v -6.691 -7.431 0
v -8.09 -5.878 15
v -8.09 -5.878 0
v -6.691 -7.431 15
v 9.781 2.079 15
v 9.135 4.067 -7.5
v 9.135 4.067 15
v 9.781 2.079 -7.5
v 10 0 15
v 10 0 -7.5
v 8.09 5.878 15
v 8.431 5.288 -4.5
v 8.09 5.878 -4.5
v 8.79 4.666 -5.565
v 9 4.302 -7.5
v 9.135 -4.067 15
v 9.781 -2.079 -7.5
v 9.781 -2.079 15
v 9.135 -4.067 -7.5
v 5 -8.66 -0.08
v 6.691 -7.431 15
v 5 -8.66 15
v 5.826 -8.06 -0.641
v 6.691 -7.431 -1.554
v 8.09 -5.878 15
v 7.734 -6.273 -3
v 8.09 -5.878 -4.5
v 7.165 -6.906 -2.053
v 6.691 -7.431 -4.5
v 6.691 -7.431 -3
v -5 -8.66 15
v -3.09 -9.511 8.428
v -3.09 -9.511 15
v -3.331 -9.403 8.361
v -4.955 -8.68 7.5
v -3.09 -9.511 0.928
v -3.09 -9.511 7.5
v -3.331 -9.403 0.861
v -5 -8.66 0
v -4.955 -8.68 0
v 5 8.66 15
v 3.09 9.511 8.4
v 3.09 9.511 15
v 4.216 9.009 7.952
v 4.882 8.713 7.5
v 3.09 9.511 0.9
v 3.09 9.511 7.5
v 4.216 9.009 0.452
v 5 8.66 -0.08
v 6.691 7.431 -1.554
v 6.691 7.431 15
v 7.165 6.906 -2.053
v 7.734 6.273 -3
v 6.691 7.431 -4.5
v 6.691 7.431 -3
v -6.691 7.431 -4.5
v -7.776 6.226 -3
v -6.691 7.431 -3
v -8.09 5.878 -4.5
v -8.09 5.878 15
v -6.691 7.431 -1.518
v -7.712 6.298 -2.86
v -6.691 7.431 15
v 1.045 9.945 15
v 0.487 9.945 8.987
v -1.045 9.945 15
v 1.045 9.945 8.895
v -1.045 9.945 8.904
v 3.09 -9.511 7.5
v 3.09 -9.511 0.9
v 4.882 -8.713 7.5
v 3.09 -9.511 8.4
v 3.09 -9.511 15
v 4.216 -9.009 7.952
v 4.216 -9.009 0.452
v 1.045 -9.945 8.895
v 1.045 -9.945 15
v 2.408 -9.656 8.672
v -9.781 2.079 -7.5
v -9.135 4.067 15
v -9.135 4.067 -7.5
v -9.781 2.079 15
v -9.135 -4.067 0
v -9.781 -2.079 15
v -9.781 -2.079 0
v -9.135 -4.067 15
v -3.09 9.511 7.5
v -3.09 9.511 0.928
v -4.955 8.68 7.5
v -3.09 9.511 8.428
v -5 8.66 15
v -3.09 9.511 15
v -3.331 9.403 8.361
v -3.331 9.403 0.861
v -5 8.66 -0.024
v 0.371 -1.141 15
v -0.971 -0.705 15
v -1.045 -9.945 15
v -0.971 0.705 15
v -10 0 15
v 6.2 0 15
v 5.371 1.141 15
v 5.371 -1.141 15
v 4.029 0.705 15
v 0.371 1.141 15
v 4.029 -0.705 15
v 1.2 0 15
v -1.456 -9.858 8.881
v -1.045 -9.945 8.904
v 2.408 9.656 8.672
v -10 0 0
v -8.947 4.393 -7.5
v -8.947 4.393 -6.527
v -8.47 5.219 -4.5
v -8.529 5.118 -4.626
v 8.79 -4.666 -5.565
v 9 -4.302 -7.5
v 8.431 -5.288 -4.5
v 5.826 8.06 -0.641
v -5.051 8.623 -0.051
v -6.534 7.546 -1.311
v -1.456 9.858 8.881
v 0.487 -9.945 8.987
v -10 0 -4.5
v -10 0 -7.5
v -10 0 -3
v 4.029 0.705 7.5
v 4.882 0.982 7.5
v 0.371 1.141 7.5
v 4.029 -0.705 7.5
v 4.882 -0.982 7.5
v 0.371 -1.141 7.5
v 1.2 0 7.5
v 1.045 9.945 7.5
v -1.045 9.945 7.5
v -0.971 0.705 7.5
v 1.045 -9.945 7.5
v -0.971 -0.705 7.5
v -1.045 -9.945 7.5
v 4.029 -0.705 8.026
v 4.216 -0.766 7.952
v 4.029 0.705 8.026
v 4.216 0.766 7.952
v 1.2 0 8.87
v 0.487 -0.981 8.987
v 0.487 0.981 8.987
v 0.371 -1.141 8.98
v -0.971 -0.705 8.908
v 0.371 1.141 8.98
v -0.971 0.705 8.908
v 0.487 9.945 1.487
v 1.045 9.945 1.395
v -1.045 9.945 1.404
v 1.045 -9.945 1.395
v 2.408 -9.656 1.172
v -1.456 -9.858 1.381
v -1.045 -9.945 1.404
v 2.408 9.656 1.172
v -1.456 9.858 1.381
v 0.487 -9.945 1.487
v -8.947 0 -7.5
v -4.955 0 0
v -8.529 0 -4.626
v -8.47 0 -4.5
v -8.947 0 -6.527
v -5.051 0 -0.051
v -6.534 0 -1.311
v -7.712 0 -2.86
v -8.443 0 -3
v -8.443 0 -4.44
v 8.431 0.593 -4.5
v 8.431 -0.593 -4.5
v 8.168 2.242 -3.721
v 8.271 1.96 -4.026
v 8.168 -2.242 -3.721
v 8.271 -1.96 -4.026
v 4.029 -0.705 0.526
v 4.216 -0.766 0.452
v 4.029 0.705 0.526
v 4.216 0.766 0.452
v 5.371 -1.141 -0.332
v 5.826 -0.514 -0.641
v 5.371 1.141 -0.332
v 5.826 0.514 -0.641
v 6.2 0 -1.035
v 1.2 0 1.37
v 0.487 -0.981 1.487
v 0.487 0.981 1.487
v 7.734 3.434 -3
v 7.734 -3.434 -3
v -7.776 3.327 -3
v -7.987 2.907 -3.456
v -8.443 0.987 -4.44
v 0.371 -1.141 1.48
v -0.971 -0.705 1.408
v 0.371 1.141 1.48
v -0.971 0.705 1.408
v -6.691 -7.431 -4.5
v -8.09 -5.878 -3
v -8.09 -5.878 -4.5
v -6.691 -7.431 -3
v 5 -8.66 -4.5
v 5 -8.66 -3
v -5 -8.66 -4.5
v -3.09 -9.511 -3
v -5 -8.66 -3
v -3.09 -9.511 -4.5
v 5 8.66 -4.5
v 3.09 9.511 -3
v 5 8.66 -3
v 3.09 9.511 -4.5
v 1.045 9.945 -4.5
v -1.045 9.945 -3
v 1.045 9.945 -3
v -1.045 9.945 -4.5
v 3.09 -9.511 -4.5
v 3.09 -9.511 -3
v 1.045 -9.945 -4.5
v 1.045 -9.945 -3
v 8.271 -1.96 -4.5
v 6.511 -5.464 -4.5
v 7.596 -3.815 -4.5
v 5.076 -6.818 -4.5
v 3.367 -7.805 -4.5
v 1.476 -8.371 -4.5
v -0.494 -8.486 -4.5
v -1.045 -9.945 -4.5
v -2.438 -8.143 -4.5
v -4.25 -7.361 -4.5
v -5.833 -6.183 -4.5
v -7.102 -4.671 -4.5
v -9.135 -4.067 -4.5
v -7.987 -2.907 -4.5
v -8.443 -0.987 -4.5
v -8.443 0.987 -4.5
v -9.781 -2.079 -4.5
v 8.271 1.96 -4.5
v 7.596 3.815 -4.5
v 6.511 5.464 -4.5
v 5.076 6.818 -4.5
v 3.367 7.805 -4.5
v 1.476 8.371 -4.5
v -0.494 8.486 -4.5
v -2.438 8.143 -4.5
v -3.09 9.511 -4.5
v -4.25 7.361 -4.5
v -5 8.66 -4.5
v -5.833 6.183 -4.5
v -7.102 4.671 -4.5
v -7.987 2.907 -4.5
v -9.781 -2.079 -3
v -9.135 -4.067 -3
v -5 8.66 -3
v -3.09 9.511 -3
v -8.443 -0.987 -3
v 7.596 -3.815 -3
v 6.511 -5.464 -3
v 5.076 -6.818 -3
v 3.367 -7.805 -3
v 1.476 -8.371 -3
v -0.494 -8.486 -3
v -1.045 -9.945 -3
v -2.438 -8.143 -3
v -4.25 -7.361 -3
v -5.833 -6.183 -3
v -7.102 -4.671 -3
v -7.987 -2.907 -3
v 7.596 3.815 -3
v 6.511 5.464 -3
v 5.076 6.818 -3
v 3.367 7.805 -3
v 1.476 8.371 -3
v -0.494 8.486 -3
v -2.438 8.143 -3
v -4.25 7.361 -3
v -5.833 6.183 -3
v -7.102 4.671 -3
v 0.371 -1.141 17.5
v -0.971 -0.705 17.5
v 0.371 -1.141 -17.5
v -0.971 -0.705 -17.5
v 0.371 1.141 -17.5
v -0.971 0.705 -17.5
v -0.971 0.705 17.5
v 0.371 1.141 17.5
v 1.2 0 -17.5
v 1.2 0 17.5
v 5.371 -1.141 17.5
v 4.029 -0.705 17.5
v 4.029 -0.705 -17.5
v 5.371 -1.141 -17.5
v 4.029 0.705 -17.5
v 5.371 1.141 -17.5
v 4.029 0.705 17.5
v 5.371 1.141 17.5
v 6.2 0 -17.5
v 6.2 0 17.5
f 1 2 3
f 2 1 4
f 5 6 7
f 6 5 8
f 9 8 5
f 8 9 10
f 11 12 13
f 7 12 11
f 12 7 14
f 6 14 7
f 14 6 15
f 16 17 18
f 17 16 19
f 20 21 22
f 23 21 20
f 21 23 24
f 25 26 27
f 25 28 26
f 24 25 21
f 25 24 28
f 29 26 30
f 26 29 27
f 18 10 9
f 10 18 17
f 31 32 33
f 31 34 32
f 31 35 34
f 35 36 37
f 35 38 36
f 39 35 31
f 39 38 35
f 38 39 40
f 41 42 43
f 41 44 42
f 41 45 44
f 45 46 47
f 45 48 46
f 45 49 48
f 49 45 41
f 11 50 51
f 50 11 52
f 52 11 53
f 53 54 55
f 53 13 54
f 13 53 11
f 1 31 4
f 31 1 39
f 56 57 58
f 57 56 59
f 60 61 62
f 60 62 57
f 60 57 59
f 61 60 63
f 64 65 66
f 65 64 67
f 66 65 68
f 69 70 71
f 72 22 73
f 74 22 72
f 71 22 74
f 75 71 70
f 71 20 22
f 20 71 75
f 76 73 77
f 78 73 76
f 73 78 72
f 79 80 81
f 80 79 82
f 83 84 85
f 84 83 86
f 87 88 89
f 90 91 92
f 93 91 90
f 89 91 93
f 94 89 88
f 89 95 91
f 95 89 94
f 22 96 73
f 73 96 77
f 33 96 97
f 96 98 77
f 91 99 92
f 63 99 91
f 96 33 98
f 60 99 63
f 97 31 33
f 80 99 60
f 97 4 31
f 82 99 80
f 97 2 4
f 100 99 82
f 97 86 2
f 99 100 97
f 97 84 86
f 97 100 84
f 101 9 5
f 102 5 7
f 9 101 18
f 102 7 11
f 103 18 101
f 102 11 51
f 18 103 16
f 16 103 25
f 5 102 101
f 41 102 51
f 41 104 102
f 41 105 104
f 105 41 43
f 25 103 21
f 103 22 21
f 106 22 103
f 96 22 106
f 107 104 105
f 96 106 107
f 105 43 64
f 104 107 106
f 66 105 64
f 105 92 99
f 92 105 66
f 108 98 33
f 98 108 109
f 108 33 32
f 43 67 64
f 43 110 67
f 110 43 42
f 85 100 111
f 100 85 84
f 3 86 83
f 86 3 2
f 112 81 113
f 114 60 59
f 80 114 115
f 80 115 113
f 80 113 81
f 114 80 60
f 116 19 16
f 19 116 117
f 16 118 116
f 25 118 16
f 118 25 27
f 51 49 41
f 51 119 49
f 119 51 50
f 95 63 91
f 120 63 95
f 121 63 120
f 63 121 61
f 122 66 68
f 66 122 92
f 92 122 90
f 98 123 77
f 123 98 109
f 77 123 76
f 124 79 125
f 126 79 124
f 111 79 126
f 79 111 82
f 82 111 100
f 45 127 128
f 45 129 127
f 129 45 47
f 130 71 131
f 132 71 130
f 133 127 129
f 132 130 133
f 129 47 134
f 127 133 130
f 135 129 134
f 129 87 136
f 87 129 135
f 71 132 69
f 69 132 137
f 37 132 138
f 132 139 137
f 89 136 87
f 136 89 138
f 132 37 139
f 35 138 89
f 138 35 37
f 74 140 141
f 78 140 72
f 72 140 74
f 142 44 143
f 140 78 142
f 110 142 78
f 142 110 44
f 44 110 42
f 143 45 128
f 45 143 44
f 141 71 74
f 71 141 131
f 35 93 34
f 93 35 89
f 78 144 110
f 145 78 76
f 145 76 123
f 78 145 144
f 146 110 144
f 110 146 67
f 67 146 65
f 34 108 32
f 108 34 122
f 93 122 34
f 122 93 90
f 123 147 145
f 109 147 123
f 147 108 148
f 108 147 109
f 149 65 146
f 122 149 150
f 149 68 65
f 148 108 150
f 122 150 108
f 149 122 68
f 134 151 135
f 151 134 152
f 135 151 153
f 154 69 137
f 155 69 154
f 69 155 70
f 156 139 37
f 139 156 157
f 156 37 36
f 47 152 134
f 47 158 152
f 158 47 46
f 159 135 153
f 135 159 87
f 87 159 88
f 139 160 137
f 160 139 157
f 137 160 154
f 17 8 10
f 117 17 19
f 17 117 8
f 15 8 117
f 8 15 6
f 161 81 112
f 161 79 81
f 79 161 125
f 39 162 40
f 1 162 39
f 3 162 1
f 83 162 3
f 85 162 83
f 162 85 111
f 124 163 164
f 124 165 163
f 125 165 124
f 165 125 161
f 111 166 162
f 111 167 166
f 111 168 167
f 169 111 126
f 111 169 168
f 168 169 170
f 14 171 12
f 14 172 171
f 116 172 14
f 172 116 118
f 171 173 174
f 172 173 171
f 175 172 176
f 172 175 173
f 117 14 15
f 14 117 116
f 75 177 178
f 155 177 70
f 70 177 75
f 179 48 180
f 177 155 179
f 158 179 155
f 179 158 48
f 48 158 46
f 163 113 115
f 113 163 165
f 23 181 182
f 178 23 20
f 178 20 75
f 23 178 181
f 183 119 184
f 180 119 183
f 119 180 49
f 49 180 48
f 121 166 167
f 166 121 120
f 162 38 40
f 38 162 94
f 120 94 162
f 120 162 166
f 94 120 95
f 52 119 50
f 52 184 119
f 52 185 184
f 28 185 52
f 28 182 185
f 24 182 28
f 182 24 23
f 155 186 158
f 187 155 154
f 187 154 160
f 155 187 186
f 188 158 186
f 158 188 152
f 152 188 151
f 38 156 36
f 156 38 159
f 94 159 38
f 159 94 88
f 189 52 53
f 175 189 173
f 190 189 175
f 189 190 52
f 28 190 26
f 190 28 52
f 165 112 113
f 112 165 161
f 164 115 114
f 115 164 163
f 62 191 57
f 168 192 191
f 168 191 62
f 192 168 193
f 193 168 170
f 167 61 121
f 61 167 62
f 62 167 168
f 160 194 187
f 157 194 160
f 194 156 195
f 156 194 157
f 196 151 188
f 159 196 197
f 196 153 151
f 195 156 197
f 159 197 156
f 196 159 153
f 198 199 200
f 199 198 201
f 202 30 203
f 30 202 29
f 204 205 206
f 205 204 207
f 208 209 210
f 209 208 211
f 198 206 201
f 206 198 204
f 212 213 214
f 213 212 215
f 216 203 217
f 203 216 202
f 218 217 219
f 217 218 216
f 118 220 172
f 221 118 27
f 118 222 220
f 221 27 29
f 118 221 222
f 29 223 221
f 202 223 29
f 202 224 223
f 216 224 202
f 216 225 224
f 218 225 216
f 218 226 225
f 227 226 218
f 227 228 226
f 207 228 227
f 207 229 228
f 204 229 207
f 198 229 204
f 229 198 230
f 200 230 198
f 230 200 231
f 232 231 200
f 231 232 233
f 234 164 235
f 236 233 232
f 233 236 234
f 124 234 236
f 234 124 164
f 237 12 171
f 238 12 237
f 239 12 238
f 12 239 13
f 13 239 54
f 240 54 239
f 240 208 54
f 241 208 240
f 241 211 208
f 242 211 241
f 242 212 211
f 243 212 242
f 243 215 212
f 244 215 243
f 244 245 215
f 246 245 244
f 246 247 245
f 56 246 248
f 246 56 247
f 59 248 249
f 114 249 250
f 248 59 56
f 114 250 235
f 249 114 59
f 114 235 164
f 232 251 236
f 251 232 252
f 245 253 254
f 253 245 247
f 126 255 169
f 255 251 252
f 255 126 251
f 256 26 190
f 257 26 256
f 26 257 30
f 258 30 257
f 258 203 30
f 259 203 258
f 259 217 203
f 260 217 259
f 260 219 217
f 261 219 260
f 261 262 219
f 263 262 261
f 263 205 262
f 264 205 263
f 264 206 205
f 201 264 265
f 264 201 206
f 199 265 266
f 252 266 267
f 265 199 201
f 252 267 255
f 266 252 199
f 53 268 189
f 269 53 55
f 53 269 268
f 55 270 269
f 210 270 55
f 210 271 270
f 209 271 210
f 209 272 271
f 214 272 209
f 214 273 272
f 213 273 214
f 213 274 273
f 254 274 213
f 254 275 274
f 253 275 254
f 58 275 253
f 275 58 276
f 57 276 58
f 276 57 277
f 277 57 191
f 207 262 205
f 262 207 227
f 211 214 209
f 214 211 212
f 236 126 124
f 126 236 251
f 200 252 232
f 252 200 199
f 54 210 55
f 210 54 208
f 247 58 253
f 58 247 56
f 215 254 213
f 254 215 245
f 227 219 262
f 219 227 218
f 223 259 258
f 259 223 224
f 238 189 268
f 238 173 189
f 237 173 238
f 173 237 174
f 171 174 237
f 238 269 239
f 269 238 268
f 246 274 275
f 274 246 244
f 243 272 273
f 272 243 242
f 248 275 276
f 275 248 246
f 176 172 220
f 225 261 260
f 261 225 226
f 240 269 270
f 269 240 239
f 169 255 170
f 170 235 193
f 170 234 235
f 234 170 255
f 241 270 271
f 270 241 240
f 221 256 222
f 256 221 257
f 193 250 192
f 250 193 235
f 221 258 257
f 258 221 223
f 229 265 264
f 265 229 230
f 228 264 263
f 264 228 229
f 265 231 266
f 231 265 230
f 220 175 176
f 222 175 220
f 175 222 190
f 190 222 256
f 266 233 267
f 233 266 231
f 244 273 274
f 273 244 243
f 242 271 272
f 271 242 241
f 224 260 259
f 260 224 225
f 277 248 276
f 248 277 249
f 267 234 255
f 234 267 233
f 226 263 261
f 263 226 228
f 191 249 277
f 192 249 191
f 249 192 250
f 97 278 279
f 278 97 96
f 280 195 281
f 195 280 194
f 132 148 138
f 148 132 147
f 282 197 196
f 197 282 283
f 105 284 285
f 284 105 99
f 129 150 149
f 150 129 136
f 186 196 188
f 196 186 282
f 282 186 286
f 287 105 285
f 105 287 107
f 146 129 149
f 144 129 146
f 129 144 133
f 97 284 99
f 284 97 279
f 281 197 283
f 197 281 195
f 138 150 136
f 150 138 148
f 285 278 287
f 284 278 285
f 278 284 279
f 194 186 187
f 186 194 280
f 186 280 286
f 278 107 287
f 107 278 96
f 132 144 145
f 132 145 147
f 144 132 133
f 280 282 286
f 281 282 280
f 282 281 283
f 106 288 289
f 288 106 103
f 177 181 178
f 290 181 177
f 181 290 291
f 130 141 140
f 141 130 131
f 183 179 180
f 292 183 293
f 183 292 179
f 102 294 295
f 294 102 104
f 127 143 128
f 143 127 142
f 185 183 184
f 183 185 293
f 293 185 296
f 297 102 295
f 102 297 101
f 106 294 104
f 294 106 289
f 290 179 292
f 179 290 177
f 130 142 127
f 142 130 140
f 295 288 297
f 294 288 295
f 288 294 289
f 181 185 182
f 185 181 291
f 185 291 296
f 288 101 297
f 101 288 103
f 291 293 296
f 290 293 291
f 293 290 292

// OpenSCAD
// Parameters for the model
module input_clamping_cylinder() {
    difference() {
        // Shortened cylindrical shape
        cylinder(h = 15, r = 10, center = true);
        
        // Precision-drilled holes
        translate([0, 0, -7.5]) rotate([90, 0, 0]) cylinder(h = 30, r = 2, center = true);
        translate([5, 0, -7.5]) rotate([90, 0, 0]) cylinder(h = 30, r = 2, center = true);
        
        // Widened and better-defined slotted openings
        translate([-10, -6, -7.5]) cube([20, 12, 15], center = true);
        
        // Deepened grooves for the elastic element
        translate([0, 0, -7.5]) rotate([90, 0, 0]) cylinder(h = 30, r = 9, center = true);
    }
}

module output_clamping_cylinder() {
    difference() {
        // Shortened cylindrical shape
        cylinder(h = 15, r = 10, center = true);
        
        // Precision-drilled holes aligned properly
        translate([0, 0, -7.5]) rotate([90, 0, 0]) cylinder(h = 30, r = 2, center = true);
        translate([5, 0, -7.5]) rotate([90, 0, 0]) cylinder(h = 30, r = 2, center = true);
        
        // Widened and better-defined slotted openings
        translate([-10, -6, -7.5]) cube([20, 12, 15], center = true);
        
        // Deepened grooves for the elastic element
        translate([0, 0, -7.5]) rotate([90, 0, 0]) cylinder(h = 30, r = 9, center = true);
    }
}

module elastic_spacer_ring() {
    difference() {
        // Thinner and more flexible ring
        cylinder(h = 1.5, r = 10, center = true);
        cylinder(h = 1.5, r = 8.5, center = true);
    }
}

module bolt() {
    // Lengthened and more slender bolt
    cylinder(h = 35, r = 1.2, center = true);
}

module threaded_nut() {
    difference() {
        // Slimmed down nut with sharper hexagonal edges
        cylinder(h = 2.5, r = 3, center = true);
        cylinder(h = 2.5, r = 1.5, center = true);
        rotate([0, 0, 0]) translate([-3, -3, -1.25]) cube([6, 6, 2.5], center = true);
    }
}

// Assembly
module flexible_coupling() {
    // Layer 1: Input clamping cylinder
    translate([0, 0, 7.5]) input_clamping_cylinder();
    
    // Layer 2: First elastic spacer ring
    translate([0, 0, 3.75]) elastic_spacer_ring();
    
    // Layer 3: Output clamping cylinder
    translate([0, 0, 0]) output_clamping_cylinder();
    
    // Layer 4: Second elastic spacer ring
    translate([0, 0, -3.75]) elastic_spacer_ring();
    
    // Layer 5: Bolts and nuts
    translate([0, 0, 0]) bolt();
    translate([5, 0, 0]) bolt();
    translate([0, 0, 12.5]) threaded_nut();
    translate([5, 0, 12.5]) threaded_nut();
}

// Render the model
flexible_coupling();
